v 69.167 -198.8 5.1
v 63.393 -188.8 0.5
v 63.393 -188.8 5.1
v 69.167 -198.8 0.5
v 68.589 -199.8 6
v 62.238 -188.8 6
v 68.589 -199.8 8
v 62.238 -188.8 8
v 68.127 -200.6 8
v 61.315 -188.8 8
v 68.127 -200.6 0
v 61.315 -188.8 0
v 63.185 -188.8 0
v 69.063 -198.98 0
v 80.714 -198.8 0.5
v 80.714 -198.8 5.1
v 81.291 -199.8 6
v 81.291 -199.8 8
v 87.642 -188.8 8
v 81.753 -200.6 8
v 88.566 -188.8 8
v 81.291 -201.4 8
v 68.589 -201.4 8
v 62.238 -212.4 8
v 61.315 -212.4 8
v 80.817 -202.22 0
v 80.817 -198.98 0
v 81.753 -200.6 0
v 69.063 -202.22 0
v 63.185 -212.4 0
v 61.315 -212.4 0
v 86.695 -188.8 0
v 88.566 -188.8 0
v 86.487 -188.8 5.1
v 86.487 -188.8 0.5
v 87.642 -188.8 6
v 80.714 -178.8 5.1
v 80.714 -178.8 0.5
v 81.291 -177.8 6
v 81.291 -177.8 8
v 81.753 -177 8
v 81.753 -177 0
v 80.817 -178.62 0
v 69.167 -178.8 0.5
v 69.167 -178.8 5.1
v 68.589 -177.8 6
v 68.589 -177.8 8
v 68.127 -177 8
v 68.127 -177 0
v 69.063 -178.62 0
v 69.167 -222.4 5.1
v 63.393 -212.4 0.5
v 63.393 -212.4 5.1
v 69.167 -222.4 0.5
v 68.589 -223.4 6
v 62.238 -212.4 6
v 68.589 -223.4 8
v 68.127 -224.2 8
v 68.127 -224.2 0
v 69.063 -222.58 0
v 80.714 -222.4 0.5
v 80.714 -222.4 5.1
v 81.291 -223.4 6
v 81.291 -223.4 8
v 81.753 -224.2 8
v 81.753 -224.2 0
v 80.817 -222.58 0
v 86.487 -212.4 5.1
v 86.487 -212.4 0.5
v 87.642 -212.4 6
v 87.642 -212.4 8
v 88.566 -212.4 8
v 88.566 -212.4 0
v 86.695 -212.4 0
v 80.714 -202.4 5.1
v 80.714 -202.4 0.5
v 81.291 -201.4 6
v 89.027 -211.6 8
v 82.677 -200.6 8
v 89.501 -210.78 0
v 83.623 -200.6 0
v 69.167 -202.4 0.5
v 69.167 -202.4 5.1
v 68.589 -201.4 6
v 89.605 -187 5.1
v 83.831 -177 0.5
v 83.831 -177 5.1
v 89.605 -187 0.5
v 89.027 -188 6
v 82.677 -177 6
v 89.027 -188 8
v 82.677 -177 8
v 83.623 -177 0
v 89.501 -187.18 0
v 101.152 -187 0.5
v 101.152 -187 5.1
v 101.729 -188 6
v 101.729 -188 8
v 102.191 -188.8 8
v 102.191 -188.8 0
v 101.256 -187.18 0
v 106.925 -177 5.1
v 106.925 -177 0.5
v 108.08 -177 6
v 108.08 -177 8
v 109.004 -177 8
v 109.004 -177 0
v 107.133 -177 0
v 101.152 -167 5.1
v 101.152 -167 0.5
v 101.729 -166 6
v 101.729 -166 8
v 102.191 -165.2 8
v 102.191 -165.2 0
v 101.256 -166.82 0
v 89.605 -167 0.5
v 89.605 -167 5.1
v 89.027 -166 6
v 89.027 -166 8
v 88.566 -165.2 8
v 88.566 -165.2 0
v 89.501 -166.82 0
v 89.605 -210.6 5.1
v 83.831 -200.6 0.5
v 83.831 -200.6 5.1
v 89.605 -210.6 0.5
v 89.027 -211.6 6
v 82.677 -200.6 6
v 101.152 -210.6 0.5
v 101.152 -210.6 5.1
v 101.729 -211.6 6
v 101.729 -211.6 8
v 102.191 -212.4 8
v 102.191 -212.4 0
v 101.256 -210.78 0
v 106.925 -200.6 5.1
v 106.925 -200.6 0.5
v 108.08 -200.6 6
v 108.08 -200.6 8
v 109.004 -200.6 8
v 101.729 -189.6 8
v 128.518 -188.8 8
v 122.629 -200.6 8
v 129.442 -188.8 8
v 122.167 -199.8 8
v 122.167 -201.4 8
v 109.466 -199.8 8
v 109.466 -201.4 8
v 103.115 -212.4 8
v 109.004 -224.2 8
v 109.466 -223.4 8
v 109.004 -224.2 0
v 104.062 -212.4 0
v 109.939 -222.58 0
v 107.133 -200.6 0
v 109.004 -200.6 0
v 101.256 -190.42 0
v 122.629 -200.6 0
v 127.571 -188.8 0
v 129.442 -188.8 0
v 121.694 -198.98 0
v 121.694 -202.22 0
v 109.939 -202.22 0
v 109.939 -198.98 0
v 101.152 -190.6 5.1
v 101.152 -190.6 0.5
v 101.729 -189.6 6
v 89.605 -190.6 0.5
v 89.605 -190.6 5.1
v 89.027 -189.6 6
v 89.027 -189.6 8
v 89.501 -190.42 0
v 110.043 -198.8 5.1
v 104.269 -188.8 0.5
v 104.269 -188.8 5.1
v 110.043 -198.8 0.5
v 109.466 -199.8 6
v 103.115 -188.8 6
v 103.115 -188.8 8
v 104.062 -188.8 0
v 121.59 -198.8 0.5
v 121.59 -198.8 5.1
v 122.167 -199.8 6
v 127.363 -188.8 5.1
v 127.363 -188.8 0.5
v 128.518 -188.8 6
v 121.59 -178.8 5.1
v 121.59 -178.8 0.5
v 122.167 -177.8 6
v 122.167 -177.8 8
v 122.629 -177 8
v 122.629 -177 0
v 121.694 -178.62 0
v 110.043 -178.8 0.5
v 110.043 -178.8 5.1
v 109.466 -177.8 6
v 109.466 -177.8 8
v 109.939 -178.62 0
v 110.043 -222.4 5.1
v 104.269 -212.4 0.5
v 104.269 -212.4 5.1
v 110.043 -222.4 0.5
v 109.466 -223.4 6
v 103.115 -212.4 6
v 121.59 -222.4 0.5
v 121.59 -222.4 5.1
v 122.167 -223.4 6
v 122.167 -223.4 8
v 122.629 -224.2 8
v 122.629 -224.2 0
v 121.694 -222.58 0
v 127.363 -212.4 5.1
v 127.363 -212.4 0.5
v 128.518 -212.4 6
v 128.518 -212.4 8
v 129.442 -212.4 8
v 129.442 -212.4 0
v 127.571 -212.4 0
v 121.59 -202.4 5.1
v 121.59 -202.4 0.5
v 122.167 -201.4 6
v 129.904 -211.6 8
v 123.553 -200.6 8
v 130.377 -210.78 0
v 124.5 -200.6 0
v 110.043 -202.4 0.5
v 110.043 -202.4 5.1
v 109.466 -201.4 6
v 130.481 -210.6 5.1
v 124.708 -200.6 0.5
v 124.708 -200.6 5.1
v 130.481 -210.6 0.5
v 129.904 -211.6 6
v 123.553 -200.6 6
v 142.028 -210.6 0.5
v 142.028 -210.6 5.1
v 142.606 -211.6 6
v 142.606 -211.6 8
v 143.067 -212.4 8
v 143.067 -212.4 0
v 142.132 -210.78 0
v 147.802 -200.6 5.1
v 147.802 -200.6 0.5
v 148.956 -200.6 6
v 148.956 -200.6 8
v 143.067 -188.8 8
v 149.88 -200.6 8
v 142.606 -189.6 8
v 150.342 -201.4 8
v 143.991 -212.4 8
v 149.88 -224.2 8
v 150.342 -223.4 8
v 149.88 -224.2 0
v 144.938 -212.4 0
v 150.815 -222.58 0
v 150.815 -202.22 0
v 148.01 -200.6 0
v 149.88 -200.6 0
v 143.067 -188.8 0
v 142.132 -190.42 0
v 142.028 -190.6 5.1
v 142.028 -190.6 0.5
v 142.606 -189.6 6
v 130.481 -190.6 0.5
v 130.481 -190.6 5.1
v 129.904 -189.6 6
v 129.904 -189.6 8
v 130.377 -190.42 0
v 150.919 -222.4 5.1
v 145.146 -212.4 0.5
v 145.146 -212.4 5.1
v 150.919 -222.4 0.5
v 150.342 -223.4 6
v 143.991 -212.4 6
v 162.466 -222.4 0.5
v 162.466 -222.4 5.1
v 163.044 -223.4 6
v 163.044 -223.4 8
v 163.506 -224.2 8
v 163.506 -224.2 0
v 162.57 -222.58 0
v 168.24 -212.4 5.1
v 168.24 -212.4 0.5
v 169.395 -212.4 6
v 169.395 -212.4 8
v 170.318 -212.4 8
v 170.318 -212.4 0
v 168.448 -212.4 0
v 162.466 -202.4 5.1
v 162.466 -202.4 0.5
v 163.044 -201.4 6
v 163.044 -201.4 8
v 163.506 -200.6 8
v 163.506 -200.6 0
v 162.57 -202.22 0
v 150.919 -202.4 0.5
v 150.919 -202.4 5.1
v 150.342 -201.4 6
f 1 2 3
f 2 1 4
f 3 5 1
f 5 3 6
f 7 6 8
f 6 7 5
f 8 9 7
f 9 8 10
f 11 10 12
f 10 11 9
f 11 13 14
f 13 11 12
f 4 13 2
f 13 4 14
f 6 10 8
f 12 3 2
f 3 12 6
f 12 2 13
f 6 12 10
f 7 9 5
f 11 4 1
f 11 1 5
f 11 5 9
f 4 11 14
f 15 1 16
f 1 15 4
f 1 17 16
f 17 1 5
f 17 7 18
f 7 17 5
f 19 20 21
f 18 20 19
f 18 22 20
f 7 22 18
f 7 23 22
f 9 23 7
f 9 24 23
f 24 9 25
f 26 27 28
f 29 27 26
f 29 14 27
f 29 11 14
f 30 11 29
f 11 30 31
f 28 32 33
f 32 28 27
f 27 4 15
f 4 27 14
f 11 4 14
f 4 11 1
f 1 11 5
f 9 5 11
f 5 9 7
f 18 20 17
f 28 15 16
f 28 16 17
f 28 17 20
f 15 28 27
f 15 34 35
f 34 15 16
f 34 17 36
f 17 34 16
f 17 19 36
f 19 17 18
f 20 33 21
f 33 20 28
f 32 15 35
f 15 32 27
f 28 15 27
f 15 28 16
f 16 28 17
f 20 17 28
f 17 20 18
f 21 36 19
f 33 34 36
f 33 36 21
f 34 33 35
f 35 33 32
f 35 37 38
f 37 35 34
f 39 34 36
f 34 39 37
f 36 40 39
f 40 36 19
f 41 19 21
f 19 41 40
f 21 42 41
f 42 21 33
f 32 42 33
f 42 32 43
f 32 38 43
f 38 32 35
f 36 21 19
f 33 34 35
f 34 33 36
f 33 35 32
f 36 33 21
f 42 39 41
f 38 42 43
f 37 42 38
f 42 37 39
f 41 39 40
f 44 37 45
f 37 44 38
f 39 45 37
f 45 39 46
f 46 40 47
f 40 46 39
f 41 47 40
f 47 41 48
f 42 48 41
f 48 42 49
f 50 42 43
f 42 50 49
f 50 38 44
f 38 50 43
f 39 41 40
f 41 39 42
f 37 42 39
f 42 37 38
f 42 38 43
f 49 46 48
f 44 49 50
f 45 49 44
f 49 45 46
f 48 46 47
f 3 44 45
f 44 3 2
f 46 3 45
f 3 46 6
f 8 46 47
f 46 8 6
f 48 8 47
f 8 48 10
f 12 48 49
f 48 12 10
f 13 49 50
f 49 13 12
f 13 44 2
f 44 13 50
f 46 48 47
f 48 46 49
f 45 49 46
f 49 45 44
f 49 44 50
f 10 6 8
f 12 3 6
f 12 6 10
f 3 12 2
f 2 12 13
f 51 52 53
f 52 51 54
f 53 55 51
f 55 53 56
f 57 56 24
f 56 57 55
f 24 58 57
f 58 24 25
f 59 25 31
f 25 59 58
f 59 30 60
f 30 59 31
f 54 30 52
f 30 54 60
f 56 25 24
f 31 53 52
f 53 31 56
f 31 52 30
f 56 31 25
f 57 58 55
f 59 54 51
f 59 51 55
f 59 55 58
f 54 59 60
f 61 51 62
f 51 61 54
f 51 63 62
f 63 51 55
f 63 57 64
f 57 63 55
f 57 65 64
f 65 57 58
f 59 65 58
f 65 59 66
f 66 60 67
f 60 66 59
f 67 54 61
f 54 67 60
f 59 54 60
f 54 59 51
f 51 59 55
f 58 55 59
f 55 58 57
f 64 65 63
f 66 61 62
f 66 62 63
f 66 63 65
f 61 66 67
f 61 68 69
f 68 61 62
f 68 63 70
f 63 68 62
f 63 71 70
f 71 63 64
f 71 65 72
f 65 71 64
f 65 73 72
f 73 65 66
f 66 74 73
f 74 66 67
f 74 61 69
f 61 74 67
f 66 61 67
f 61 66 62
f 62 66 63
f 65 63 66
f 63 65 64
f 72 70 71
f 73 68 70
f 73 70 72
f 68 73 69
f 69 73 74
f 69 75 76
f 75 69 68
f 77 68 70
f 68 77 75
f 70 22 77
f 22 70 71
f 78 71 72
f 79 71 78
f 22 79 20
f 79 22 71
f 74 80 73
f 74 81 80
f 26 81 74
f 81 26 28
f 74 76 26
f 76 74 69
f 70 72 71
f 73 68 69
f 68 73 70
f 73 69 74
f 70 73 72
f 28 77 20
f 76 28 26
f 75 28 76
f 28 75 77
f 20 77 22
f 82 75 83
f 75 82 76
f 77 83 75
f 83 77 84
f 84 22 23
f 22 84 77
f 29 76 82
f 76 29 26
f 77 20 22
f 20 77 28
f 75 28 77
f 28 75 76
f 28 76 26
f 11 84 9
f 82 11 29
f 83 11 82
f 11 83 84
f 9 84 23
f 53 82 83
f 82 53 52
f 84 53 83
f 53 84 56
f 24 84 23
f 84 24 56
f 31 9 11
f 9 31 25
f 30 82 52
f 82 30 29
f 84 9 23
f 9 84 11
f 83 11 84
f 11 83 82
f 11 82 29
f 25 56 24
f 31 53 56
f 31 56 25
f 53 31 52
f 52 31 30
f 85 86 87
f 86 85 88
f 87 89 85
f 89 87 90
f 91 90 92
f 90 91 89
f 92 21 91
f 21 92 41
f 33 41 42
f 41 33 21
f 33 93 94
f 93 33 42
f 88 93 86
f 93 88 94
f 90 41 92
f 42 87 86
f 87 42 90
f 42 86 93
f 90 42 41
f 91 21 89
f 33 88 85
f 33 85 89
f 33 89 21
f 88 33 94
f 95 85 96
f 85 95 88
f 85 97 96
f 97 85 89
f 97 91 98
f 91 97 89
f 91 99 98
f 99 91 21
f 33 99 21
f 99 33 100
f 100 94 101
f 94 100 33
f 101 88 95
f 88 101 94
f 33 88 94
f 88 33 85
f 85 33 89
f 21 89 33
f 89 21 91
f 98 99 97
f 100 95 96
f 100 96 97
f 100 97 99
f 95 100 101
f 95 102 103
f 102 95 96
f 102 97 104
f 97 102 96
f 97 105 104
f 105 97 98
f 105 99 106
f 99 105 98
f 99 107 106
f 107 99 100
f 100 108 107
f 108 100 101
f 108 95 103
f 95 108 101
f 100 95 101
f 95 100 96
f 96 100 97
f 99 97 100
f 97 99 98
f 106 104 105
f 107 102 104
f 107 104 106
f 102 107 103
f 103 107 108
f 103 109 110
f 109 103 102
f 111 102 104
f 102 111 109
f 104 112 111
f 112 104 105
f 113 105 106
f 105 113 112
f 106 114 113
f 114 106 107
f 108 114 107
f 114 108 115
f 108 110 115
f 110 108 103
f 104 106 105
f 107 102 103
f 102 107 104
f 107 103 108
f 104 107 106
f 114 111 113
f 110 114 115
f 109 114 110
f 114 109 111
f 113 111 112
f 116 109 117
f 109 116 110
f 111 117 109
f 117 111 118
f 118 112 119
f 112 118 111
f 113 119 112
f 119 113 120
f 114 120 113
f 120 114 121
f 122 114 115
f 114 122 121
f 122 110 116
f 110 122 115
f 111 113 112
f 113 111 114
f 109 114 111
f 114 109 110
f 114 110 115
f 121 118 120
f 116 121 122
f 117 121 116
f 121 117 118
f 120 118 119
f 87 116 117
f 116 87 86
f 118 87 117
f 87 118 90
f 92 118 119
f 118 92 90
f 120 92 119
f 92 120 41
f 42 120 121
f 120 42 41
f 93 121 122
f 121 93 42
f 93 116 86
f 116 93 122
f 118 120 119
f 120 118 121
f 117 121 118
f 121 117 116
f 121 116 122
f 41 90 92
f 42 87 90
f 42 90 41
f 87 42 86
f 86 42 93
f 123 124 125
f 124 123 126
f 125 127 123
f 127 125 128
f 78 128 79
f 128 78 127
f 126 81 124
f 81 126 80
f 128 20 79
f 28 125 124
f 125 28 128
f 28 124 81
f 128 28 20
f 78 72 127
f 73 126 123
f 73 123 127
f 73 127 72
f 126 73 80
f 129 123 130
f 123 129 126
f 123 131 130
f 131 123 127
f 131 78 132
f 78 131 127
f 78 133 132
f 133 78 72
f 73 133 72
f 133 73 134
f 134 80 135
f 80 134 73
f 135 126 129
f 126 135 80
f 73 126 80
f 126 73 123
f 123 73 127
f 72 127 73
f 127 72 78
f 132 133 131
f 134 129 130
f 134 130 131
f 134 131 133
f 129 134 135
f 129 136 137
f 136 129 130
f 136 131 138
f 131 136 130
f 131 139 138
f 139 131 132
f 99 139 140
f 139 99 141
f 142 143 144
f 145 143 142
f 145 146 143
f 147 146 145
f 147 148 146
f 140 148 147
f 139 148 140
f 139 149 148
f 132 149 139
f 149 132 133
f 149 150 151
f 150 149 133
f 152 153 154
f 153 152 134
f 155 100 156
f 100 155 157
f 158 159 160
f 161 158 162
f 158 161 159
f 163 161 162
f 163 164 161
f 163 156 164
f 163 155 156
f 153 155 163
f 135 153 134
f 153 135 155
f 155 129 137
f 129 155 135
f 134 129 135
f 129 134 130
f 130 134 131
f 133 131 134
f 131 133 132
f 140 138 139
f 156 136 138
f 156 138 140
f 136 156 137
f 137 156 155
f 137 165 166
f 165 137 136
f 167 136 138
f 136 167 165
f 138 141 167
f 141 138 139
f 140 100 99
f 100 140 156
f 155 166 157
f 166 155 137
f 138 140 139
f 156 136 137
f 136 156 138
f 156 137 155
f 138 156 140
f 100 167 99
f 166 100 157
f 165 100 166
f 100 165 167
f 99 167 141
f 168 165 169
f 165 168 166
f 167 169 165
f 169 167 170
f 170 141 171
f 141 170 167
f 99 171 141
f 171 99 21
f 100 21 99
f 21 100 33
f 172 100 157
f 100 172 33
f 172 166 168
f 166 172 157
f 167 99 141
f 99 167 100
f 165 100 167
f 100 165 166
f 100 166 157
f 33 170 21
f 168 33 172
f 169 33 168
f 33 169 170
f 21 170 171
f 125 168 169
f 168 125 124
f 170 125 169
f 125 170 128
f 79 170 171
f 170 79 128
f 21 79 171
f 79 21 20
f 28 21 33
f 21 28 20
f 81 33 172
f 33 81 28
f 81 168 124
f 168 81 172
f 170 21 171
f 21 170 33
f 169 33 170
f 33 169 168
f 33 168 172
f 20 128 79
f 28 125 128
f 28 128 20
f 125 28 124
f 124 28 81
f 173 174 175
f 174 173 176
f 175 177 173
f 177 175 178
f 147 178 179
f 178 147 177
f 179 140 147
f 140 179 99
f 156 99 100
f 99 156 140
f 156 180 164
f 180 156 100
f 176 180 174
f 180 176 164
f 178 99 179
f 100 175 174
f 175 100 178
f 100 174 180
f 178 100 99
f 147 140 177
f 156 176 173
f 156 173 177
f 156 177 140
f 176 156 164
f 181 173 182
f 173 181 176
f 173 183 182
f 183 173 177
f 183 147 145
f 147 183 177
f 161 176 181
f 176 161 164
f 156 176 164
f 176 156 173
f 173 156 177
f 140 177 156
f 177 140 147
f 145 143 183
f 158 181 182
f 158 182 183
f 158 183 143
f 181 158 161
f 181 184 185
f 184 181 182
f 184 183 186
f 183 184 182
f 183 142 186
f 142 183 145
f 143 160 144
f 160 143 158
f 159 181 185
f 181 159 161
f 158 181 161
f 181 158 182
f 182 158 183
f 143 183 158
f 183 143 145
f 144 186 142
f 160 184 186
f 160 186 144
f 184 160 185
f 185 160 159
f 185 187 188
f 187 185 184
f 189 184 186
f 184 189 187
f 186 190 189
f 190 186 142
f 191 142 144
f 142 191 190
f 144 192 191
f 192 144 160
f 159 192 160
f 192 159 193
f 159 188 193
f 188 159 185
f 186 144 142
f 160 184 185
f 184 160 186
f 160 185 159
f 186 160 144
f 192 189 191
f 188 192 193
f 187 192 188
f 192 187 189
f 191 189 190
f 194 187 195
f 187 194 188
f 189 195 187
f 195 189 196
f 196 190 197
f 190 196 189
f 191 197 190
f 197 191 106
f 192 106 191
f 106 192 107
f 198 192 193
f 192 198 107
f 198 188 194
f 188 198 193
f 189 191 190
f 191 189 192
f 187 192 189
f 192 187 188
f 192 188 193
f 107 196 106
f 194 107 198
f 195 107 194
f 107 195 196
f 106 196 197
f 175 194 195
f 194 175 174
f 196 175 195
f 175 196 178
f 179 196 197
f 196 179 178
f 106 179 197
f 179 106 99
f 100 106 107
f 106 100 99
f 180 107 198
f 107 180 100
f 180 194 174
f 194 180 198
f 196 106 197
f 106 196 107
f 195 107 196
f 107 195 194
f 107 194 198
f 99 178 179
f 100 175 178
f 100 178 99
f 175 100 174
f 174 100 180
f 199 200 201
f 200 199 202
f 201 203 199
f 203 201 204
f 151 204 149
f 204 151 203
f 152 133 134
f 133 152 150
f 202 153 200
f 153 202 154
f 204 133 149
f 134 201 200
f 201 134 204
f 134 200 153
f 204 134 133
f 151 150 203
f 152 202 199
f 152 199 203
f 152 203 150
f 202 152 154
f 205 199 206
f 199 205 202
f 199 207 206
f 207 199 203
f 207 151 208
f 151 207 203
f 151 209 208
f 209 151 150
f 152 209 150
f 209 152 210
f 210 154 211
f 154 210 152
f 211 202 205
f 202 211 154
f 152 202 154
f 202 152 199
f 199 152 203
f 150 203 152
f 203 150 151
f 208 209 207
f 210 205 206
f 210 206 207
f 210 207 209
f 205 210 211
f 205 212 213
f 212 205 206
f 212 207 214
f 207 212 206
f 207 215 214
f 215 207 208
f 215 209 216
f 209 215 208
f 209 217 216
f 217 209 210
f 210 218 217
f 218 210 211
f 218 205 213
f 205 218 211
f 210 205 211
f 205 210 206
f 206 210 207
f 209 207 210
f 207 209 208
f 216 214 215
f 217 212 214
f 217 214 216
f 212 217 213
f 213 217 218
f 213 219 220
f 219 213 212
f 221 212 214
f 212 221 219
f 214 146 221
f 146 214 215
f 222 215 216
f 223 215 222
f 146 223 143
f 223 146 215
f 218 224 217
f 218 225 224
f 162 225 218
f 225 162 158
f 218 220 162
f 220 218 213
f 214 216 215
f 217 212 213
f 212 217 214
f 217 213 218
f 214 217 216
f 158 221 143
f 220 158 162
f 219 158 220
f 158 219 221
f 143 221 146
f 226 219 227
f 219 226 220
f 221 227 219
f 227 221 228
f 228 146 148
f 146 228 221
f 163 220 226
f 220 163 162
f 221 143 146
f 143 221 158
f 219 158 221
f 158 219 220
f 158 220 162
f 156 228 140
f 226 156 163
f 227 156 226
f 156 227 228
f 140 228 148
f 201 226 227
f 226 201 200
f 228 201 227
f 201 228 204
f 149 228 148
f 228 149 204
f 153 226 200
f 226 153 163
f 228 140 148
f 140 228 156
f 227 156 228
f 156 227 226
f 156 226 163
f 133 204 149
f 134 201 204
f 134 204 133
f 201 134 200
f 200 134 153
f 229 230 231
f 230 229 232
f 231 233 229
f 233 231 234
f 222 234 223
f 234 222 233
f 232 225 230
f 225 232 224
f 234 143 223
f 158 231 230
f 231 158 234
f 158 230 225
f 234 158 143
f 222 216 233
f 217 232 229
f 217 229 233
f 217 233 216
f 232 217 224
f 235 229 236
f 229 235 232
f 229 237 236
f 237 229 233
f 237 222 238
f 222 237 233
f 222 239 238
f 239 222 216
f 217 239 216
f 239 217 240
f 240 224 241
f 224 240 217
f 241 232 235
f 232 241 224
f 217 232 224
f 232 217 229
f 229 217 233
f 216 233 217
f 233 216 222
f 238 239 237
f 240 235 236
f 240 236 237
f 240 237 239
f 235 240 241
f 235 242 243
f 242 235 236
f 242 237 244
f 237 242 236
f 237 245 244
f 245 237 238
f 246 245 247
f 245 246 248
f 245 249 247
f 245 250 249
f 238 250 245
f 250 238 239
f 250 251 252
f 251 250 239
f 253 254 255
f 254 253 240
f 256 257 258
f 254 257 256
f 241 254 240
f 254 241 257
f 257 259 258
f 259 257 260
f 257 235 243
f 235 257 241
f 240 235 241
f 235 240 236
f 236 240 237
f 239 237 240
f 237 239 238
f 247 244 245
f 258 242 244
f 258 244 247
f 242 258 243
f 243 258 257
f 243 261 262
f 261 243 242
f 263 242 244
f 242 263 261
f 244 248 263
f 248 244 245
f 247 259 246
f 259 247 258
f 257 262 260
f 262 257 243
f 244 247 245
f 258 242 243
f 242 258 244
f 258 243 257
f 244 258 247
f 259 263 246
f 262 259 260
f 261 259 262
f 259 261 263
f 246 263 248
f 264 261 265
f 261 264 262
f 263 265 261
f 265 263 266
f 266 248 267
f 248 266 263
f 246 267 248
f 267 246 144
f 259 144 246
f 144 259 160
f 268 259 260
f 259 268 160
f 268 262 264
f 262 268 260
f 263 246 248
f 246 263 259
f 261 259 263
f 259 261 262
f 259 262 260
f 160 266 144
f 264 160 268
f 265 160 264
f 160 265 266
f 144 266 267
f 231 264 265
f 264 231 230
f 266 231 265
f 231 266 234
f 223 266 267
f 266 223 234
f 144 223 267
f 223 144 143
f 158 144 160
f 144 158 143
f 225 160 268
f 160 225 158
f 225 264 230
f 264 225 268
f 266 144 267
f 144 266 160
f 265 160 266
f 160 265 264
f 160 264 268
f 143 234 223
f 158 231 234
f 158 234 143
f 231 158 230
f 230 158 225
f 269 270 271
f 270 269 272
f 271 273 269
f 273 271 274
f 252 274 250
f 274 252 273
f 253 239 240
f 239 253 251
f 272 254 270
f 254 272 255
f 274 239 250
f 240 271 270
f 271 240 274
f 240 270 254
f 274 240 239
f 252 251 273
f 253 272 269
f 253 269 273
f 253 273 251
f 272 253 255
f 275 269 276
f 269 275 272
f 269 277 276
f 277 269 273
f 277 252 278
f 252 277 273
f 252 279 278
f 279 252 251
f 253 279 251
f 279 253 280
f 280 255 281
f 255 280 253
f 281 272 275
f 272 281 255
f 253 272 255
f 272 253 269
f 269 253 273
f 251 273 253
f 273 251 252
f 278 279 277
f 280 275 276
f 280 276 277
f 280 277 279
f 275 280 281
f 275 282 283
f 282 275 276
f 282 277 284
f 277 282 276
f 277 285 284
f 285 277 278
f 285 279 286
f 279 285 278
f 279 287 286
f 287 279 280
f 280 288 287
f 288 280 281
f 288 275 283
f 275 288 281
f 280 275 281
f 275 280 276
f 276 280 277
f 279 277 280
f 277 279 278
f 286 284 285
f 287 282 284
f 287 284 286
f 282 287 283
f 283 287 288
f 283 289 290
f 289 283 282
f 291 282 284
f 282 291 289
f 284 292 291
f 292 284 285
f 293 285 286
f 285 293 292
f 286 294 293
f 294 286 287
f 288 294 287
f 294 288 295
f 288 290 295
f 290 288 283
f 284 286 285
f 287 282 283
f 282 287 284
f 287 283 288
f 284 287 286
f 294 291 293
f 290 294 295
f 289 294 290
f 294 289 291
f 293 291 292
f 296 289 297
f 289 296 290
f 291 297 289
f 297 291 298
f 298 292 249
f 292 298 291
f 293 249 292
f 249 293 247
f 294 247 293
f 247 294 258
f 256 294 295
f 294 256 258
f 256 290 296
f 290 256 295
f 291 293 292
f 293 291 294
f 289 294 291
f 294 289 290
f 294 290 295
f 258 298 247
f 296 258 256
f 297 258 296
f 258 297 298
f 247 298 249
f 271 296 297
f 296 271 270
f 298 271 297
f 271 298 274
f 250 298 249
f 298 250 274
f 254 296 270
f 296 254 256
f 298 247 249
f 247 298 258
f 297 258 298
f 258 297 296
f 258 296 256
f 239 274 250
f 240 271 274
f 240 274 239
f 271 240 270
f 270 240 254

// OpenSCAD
/*[ Hex unit size ]*/

//Depth of the grid
depth = 8;
//Width of the hexagon's hole (flat side to flat side)
hole_width = 20;
//Thickness of the wall forming each hexagon
wall_thickness = 1.8;

/*[ Grid size settings ]*/
max_grid_width=100;
max_grid_height=100;

/*[ Grid shape ]*/
//If checked, ignores custom column sizes and fills grid to maximum size.
fill=false;
flip_staggering=true;
//Amount of hexagons per column. Each entry defines a one column, where the number specifies the amount of hex units that will be generated for the respective column. (Ignored if "fill" is checked)
//columns=[ 9, 10, 9, 10, 9, 10, 9, 10, 9,];
columns=[ 9, 10, 9, 10, 9, 10, 9, 10, 9,];
//columns=[10, 9, 10, 9, 10, 9, 10, 9, 10];
include_offsets=false;
//Optional: Offset for each column. This will ignore grid size limits.
column_offsets=[0,-2,-3,-1,0,2,4];
include_gaps=true;
//Optional: Gaps for each column. *NOTE: Change these values in the code. Seems like 2D vector parameters aren't supported by the parameter editor and are always overwritten by the defaults.
column_gaps=[
             [1,2,3,4,5,6,7,8,9], // column 1
             [1,2,3,4,5,6,7,8,9,10], // column 2
             [1,2,3,4,5,6,7,8,9], // column 3
             [1,2,3,4,5,6,7,8],//[1,2,3,4,5,9,10], // column 4
             [1,2,3,4,5,6,7], // [1,2,3,4,8,9], // column 5
             [1,2,3,4,5,6,7,8], // [1,2,3,4,5,9,10], // column 6
             [1,2,3,4,5,6,7,8], //[1,2,3,4,5,9,], // column 7
             [1,2,3,4,5,6,7,8,9,], // column 8
             [1,2,3,4,5,6,7,8,9], // column 9
             ];

/*[ Flat edges ]*/
edge_left = false;
edge_top = true;
edge_right = false;
edge_bottom = false;


//Calculated global variables
//Hexagon dimensions
hex_inner_r = hole_width/sqrt(3); //Inner radius/side length (center to point)
hex_h=hole_width+wall_thickness*2; //Outer side to side distance
hex_s=hex_h/sqrt(3); //Outer radius/side length 
hex_d=2*hex_s; //Outer diameter (point to point)
hex_t=hex_s/2;
//Grid dimensions
max_grid_hexagons_x = fill? floor(max_grid_width/(hex_d-hex_t) +(edge_left?0.5:0) +(edge_right?0.5:0)): len(columns);
max_grid_hexagons_y = fill? floor(max_grid_height/hex_h +(edge_top?0.5:0) +(edge_bottom?0.5:0)): max(columns);
max_grid_hexagons_y_lo = fill? floor(max_grid_height/hex_h - 0.5 +(edge_top?0.5:0) +(edge_bottom?0.5:0)): (max(columns) - 0.5);
total_width = max_grid_hexagons_x * (hex_d-hex_t) + hex_t;
total_height = hex_h*max(max_grid_hexagons_y - 0.5, max_grid_hexagons_y_lo);


translate([edge_left?0:hex_s, edge_top?0:-hex_h/2, 0])
grid(columns, include_offsets?column_offsets:[], include_gaps?column_gaps:[], depth, hole_width, wall_thickness, fill);


module grid(cols, offsets, gaps, height, hole_width, wall_width, fill){    
    for(hcol = [0:fill?max_grid_hexagons_x-1:(len(cols)-1)]){
        for(hrow = [0:(fill?(max_grid_hexagons_y-1):(cols[hcol]-1))]) {
            skip = hcol<len(gaps) && len(search(hrow+1, gaps[hcol])) > 0;          
            if(!skip){
                offset_value=hcol>len(offsets)-1?0:offsets[hcol];
                
                lo = (hcol+(flip_staggering?1:0))%2;
                x = (hex_d-hex_t)*hcol;
                y = -(hex_h)*(hrow + offset_value + lo/2);                
                
                if(hcol<max_grid_hexagons_x && hrow<(lo==0?max_grid_hexagons_y:max_grid_hexagons_y_lo)){
                    left = edge_left && hcol==0;
                    top = edge_top && hrow==0 && hcol%2==(flip_staggering?1:0);
                    right = edge_right && hcol==max_grid_hexagons_x-1;
                    bottom = edge_bottom && hrow+1==(lo==0?max_grid_hexagons_y:max_grid_hexagons_y_lo) && -y+hex_h>total_height+0.001 && -y+hex_h/2<=total_height;
                    translate([x, y, 0]) halfhex(height, hex_s, wall_width, hole_width, left, top, right, bottom);
                }
            }        
        }
    }
}

module halfhex(height, radius, wall_thickness, hole_width, left, top, right, bottom){
    difference(){
        union(){
            hex(height, radius, wall_thickness, hole_width);
            if(left) translate([0, hex_h/2, 0]) wall(depth, wall_thickness, hex_h);
            if(top) translate([hex_d/2, 0, 0]) rotate([0,0,-90]) wall(depth, wall_thickness, hex_d);
            if(right) translate([0, -hex_h/2, 0]) rotate([0,0,180]) wall(depth, wall_thickness, hex_h);
            if(bottom) translate([-hex_d/2, 0, 0]) rotate([0,0,90]) wall(depth, wall_thickness, hex_d);
        }
        if(left) translate([-hex_d/2, -hex_h, 0]) cube([hex_d/2, 2*hex_h, depth]);
        if(top) translate([-hex_d/2, 0, 0]) cube([hex_d, hex_h, depth]);
        if(right) translate([0, -hex_h, 0]) cube([hex_d/2, 2*hex_h, depth]);
        if(bottom) translate([-hex_d/2, -hex_h, 0]) cube([hex_d, hex_h, depth]);
    }
}

module hex(height, radius, wall_thickness, hole_width){
    for(i=[0:5]){
        rotate([0,0,i*60+30])
        translate([-hole_width/2-wall_thickness, radius/2, 0])
        wall(height, wall_thickness, radius);
    }
}

module wall(height, wall_thickness, length){
    hmax=height;
    hmin=5.1;
    hd=2;
    tmax=wall_thickness;
    tmin=wall_thickness-1;   
    ft = 0.18;//fillet thickness
    fh = 0.5;//fillet height
    color("blue")
    difference(){
        color([0,0,1])
        rotate([90,0,0])
            linear_extrude(length)   
            polygon([[0,0], [0,hmax], [tmin,hmax], [tmin,hmax-hd], [tmax,hmin], [tmax,fh], [tmax-ft,0]]);
        //Fillet
        rotate([0,0,-30])
            cube([4*tmax, 2*tmax, hmax]);
        mirror([0,1,0])
            translate([0,length,0])
            rotate([0,0,-30])
            cube([4*tmax, 2*tmax, hmax]);
    }
}
